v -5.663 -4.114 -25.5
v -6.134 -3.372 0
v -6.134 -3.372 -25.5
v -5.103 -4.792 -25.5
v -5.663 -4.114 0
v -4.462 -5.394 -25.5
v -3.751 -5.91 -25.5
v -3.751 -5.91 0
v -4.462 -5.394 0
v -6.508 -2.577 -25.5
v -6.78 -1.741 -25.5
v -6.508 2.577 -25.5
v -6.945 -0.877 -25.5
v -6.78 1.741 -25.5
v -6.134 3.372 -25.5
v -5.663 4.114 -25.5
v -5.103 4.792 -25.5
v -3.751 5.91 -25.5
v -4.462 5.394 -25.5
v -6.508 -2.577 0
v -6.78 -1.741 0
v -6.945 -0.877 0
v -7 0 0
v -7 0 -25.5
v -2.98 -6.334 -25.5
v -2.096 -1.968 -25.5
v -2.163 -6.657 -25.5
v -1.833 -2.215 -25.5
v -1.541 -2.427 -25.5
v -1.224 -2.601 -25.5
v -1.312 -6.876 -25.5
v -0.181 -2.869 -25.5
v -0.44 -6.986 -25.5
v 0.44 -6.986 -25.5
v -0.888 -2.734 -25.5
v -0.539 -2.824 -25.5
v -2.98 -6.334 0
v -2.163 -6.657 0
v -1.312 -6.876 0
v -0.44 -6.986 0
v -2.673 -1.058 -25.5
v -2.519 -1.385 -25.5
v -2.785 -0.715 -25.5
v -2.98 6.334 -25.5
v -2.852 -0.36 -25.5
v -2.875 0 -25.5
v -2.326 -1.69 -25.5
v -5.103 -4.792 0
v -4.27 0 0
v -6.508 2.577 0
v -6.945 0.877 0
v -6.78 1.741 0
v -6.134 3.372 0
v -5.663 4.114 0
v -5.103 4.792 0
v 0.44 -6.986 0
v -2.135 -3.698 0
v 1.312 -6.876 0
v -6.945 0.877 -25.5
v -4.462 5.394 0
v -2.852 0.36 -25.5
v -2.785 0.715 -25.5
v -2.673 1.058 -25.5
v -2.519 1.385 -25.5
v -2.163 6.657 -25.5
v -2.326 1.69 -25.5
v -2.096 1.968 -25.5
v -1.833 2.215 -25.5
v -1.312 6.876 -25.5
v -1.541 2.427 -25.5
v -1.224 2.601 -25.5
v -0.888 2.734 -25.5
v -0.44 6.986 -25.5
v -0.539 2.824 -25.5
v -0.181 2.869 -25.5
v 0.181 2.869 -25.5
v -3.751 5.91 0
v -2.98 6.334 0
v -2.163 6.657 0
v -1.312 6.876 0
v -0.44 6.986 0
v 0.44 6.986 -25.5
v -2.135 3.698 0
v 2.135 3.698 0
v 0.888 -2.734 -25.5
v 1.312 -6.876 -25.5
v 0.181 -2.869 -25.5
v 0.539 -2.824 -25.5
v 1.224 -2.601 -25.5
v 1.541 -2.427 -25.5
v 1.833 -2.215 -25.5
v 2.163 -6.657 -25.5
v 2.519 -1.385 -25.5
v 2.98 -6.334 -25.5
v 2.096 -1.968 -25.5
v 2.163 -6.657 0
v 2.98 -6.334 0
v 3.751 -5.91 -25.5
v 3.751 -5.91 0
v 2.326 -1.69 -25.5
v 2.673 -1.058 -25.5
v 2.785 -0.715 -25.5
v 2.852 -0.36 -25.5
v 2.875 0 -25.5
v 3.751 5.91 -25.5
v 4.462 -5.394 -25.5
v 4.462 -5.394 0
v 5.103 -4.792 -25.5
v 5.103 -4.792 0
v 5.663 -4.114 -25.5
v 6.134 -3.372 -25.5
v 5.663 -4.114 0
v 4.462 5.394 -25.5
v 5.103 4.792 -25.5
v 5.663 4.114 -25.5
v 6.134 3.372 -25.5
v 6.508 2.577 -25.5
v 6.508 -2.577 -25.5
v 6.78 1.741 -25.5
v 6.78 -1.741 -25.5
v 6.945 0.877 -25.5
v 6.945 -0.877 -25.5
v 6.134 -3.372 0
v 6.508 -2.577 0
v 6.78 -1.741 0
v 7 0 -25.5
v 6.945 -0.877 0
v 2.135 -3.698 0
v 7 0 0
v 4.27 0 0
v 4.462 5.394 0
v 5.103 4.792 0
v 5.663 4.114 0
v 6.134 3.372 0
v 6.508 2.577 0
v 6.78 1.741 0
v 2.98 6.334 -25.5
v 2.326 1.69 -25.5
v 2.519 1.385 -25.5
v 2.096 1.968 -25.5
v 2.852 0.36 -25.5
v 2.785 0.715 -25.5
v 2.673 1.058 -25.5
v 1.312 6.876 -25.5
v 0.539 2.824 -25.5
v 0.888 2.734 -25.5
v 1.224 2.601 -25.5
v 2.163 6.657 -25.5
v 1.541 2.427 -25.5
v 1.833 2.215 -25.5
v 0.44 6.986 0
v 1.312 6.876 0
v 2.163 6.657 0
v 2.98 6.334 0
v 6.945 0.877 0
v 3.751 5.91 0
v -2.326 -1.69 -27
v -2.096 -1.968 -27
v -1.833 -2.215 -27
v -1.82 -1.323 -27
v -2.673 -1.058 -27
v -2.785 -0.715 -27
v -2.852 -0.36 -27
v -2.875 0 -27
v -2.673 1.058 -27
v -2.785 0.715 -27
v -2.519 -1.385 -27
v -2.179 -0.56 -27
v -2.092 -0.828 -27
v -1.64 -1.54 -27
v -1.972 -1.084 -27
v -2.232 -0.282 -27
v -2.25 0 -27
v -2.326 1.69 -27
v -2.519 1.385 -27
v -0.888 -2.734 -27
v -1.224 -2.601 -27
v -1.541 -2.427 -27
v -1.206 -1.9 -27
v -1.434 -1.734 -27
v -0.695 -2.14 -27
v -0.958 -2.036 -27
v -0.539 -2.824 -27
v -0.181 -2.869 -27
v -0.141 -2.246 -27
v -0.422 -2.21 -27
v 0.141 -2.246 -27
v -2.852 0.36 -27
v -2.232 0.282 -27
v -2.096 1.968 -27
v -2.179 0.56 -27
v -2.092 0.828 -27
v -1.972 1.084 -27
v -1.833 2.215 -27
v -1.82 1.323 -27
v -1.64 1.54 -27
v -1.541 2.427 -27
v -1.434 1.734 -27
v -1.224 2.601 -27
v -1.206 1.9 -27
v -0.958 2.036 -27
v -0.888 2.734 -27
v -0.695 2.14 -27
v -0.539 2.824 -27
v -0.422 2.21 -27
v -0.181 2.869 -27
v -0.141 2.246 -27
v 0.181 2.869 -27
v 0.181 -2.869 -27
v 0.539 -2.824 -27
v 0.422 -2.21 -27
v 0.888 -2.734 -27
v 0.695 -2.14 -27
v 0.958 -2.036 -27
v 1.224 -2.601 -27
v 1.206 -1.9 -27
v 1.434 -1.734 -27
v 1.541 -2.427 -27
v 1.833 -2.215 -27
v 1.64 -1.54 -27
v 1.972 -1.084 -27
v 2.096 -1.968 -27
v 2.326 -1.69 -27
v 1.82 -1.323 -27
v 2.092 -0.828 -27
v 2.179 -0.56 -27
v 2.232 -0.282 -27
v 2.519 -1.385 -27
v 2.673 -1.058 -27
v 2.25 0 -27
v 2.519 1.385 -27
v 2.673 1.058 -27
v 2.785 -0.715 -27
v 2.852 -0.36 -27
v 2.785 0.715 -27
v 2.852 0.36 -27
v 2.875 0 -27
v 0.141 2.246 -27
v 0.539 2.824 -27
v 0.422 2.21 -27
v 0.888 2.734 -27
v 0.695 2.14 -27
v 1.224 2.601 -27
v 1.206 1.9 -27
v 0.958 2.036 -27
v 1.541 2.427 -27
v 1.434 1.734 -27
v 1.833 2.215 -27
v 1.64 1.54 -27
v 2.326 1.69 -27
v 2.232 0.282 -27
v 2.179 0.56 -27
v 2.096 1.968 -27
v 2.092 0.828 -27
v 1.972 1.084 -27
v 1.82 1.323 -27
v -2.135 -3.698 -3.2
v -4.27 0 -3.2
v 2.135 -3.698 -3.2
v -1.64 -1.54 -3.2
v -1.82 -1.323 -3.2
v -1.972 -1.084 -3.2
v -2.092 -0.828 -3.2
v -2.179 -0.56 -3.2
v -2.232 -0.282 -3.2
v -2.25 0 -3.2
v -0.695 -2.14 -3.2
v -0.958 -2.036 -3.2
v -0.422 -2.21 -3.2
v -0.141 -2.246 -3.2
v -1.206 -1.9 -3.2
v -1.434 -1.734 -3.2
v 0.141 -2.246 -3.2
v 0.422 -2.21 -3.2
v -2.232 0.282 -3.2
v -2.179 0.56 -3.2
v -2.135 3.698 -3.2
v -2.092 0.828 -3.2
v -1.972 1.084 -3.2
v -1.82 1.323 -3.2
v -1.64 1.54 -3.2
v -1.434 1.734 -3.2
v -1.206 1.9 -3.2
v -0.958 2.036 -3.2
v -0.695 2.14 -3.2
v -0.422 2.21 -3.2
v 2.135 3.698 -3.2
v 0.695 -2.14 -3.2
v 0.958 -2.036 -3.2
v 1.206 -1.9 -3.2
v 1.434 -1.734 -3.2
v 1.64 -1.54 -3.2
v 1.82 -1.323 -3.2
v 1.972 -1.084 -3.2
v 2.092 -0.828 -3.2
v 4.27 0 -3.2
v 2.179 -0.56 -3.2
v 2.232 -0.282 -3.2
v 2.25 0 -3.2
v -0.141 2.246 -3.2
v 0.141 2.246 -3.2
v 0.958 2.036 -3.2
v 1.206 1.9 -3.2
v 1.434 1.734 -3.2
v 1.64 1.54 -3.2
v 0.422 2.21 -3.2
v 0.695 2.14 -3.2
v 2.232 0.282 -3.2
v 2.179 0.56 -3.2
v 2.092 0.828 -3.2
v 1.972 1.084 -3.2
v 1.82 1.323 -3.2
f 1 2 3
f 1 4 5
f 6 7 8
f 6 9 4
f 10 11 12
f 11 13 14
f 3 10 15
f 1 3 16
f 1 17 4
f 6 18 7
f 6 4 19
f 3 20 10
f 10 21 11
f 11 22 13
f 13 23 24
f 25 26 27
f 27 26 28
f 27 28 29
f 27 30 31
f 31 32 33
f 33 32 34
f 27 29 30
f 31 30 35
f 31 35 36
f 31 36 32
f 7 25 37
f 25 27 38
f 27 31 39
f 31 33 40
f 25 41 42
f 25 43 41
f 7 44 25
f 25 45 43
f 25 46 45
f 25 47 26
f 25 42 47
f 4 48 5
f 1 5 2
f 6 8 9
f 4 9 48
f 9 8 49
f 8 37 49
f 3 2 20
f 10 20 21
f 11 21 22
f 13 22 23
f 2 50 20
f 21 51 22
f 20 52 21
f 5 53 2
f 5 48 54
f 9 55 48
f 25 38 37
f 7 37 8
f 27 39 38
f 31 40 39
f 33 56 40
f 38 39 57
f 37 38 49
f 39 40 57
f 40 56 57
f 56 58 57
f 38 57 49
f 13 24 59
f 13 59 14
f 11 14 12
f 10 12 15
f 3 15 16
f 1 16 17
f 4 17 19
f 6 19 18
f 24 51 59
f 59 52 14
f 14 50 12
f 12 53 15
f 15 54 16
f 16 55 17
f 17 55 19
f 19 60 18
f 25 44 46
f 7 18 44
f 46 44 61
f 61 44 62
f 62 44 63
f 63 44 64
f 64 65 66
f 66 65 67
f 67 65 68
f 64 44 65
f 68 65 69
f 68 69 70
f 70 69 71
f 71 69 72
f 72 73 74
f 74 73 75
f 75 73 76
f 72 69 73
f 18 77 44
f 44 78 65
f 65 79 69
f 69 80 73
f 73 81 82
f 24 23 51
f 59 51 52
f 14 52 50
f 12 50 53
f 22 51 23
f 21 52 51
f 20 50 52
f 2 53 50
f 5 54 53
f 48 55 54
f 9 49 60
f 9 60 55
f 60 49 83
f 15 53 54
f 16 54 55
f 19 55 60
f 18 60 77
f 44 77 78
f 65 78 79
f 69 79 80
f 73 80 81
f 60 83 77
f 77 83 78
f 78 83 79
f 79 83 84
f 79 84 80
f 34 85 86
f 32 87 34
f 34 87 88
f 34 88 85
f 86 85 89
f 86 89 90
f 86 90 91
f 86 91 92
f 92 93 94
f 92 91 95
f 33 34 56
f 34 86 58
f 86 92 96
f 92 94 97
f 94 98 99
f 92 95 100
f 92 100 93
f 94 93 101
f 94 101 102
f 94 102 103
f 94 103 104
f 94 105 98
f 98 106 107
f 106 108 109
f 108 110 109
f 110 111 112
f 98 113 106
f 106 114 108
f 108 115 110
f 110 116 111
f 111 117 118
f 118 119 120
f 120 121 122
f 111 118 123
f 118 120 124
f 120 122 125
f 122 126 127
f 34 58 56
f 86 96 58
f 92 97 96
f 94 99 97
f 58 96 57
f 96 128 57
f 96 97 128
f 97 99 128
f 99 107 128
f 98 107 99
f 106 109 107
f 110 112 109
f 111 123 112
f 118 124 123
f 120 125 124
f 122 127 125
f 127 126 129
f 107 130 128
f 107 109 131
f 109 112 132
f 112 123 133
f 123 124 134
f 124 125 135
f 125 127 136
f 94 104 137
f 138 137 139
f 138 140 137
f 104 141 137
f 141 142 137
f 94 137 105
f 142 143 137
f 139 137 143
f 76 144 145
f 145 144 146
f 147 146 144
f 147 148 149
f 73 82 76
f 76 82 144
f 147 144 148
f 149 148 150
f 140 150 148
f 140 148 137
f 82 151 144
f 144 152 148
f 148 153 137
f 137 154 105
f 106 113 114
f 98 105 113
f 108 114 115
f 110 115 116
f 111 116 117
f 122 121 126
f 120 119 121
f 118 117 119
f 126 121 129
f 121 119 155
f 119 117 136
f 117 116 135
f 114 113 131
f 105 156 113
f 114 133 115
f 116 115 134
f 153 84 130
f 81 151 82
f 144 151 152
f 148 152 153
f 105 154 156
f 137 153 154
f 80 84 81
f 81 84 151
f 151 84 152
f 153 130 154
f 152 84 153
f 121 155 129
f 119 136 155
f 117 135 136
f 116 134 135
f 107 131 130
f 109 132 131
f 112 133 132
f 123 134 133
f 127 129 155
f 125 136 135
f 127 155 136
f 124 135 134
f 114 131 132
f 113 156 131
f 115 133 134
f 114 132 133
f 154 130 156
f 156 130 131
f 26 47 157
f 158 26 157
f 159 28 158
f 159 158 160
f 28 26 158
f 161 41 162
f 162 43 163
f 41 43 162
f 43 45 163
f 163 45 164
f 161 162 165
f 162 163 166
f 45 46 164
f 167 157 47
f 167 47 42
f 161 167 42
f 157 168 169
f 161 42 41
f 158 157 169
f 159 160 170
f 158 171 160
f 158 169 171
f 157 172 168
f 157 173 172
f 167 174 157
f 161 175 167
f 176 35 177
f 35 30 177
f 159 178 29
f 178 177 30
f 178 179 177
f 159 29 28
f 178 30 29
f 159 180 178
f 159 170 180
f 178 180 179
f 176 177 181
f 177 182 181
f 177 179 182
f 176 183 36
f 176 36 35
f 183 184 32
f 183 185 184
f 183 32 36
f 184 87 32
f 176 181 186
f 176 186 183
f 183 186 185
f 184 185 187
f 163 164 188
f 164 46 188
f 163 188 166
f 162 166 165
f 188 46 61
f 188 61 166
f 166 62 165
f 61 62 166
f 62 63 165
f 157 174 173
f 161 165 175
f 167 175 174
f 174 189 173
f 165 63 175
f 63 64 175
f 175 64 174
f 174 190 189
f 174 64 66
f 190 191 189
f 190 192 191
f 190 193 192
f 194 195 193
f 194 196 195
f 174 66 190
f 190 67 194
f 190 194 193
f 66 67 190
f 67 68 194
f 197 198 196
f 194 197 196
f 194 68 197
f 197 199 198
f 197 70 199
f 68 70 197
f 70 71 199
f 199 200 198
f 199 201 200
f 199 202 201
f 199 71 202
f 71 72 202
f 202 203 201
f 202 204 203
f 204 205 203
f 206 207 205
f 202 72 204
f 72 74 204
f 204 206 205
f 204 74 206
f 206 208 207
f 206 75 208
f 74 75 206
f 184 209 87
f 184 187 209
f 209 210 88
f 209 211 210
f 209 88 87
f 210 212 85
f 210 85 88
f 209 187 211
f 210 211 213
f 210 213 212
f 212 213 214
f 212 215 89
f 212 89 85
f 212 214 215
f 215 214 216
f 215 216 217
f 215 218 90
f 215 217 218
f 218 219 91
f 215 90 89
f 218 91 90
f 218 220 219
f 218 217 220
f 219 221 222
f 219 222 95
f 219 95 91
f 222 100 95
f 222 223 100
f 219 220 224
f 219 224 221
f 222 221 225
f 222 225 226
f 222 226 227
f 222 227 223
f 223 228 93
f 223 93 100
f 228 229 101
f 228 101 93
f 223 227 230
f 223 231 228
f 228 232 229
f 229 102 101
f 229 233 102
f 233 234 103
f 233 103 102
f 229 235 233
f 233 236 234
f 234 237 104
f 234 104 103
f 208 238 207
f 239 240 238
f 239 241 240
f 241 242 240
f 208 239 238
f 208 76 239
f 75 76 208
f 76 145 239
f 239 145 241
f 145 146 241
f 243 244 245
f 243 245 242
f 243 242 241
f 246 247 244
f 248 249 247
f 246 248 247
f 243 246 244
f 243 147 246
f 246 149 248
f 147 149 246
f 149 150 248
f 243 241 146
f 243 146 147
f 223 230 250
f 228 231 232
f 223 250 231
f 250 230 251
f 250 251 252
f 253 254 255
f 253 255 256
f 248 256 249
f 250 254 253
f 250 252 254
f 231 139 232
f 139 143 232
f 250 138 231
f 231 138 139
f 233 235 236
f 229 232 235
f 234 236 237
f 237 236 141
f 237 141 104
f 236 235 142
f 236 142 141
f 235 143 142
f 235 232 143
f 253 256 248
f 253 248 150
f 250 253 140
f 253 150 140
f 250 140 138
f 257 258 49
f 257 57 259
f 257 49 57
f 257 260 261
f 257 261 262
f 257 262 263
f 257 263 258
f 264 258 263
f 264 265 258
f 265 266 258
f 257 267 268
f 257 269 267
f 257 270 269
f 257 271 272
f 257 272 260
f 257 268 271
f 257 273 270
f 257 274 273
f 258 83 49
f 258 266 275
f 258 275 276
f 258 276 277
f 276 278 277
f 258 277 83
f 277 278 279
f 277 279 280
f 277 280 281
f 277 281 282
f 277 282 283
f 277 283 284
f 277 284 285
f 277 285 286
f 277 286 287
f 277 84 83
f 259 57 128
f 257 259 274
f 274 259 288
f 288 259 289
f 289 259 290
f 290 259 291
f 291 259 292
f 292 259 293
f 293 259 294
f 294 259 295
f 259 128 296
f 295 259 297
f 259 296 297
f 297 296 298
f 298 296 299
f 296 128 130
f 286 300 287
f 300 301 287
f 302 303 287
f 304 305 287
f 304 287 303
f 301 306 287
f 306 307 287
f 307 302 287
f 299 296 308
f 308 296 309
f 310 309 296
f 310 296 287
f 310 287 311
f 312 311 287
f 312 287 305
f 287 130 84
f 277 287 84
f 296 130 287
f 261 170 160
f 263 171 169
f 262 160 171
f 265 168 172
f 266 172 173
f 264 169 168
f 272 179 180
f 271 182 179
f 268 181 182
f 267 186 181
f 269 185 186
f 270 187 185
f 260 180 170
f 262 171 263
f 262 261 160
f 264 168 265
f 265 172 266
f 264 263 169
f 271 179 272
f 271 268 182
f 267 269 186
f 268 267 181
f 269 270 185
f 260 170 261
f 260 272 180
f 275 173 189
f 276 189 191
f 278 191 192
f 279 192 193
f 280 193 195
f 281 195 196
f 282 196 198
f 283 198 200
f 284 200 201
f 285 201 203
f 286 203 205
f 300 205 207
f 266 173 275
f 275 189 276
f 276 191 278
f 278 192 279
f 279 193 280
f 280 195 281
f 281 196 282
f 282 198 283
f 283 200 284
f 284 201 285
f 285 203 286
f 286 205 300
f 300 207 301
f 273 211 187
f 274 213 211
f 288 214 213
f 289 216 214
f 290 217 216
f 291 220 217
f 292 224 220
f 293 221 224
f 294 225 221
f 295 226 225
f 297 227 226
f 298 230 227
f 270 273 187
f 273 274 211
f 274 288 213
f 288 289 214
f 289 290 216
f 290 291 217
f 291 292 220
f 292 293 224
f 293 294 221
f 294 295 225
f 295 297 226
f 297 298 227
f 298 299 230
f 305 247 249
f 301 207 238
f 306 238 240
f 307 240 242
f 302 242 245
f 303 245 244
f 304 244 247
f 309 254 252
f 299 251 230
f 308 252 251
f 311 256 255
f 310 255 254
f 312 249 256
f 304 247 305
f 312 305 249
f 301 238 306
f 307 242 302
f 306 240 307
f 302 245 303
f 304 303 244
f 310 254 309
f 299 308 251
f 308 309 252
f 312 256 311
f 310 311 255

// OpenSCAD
$fn = 50;

difference() {
	union() {
		translate(v = [0, 0, -25.5]) {
			cylinder(h = 25.5, r = 7.0);
		}
		#translate(v = [0, 0, -27.0]) {
			cylinder(h = 27, r = 2.875);
		}
	}
	union() {
		translate(v = [0, 0, 0]) {
			rotate(a = [0, 0, 0]) {
				difference() {
					union() {
						translate(v = [0, 0, -3.2]) {
							linear_extrude(height = 3.2) {
								polygon(points = [[4.2698, 0.0], [2.1349000000000005, 3.697755269078796], [-2.134899999999999, 3.6977552690787965], [-4.2698, 5.228996902999369e-16], [-2.134900000000002, -3.6977552690787956], [2.1348999999999974, -3.697755269078798]]);
							}
						}
					}
					union();
				}
			}
		}
		#translate(v = [0, 0, -100.0]) {
			cylinder(h = 200, r = 2.25);
		}
	}
}
